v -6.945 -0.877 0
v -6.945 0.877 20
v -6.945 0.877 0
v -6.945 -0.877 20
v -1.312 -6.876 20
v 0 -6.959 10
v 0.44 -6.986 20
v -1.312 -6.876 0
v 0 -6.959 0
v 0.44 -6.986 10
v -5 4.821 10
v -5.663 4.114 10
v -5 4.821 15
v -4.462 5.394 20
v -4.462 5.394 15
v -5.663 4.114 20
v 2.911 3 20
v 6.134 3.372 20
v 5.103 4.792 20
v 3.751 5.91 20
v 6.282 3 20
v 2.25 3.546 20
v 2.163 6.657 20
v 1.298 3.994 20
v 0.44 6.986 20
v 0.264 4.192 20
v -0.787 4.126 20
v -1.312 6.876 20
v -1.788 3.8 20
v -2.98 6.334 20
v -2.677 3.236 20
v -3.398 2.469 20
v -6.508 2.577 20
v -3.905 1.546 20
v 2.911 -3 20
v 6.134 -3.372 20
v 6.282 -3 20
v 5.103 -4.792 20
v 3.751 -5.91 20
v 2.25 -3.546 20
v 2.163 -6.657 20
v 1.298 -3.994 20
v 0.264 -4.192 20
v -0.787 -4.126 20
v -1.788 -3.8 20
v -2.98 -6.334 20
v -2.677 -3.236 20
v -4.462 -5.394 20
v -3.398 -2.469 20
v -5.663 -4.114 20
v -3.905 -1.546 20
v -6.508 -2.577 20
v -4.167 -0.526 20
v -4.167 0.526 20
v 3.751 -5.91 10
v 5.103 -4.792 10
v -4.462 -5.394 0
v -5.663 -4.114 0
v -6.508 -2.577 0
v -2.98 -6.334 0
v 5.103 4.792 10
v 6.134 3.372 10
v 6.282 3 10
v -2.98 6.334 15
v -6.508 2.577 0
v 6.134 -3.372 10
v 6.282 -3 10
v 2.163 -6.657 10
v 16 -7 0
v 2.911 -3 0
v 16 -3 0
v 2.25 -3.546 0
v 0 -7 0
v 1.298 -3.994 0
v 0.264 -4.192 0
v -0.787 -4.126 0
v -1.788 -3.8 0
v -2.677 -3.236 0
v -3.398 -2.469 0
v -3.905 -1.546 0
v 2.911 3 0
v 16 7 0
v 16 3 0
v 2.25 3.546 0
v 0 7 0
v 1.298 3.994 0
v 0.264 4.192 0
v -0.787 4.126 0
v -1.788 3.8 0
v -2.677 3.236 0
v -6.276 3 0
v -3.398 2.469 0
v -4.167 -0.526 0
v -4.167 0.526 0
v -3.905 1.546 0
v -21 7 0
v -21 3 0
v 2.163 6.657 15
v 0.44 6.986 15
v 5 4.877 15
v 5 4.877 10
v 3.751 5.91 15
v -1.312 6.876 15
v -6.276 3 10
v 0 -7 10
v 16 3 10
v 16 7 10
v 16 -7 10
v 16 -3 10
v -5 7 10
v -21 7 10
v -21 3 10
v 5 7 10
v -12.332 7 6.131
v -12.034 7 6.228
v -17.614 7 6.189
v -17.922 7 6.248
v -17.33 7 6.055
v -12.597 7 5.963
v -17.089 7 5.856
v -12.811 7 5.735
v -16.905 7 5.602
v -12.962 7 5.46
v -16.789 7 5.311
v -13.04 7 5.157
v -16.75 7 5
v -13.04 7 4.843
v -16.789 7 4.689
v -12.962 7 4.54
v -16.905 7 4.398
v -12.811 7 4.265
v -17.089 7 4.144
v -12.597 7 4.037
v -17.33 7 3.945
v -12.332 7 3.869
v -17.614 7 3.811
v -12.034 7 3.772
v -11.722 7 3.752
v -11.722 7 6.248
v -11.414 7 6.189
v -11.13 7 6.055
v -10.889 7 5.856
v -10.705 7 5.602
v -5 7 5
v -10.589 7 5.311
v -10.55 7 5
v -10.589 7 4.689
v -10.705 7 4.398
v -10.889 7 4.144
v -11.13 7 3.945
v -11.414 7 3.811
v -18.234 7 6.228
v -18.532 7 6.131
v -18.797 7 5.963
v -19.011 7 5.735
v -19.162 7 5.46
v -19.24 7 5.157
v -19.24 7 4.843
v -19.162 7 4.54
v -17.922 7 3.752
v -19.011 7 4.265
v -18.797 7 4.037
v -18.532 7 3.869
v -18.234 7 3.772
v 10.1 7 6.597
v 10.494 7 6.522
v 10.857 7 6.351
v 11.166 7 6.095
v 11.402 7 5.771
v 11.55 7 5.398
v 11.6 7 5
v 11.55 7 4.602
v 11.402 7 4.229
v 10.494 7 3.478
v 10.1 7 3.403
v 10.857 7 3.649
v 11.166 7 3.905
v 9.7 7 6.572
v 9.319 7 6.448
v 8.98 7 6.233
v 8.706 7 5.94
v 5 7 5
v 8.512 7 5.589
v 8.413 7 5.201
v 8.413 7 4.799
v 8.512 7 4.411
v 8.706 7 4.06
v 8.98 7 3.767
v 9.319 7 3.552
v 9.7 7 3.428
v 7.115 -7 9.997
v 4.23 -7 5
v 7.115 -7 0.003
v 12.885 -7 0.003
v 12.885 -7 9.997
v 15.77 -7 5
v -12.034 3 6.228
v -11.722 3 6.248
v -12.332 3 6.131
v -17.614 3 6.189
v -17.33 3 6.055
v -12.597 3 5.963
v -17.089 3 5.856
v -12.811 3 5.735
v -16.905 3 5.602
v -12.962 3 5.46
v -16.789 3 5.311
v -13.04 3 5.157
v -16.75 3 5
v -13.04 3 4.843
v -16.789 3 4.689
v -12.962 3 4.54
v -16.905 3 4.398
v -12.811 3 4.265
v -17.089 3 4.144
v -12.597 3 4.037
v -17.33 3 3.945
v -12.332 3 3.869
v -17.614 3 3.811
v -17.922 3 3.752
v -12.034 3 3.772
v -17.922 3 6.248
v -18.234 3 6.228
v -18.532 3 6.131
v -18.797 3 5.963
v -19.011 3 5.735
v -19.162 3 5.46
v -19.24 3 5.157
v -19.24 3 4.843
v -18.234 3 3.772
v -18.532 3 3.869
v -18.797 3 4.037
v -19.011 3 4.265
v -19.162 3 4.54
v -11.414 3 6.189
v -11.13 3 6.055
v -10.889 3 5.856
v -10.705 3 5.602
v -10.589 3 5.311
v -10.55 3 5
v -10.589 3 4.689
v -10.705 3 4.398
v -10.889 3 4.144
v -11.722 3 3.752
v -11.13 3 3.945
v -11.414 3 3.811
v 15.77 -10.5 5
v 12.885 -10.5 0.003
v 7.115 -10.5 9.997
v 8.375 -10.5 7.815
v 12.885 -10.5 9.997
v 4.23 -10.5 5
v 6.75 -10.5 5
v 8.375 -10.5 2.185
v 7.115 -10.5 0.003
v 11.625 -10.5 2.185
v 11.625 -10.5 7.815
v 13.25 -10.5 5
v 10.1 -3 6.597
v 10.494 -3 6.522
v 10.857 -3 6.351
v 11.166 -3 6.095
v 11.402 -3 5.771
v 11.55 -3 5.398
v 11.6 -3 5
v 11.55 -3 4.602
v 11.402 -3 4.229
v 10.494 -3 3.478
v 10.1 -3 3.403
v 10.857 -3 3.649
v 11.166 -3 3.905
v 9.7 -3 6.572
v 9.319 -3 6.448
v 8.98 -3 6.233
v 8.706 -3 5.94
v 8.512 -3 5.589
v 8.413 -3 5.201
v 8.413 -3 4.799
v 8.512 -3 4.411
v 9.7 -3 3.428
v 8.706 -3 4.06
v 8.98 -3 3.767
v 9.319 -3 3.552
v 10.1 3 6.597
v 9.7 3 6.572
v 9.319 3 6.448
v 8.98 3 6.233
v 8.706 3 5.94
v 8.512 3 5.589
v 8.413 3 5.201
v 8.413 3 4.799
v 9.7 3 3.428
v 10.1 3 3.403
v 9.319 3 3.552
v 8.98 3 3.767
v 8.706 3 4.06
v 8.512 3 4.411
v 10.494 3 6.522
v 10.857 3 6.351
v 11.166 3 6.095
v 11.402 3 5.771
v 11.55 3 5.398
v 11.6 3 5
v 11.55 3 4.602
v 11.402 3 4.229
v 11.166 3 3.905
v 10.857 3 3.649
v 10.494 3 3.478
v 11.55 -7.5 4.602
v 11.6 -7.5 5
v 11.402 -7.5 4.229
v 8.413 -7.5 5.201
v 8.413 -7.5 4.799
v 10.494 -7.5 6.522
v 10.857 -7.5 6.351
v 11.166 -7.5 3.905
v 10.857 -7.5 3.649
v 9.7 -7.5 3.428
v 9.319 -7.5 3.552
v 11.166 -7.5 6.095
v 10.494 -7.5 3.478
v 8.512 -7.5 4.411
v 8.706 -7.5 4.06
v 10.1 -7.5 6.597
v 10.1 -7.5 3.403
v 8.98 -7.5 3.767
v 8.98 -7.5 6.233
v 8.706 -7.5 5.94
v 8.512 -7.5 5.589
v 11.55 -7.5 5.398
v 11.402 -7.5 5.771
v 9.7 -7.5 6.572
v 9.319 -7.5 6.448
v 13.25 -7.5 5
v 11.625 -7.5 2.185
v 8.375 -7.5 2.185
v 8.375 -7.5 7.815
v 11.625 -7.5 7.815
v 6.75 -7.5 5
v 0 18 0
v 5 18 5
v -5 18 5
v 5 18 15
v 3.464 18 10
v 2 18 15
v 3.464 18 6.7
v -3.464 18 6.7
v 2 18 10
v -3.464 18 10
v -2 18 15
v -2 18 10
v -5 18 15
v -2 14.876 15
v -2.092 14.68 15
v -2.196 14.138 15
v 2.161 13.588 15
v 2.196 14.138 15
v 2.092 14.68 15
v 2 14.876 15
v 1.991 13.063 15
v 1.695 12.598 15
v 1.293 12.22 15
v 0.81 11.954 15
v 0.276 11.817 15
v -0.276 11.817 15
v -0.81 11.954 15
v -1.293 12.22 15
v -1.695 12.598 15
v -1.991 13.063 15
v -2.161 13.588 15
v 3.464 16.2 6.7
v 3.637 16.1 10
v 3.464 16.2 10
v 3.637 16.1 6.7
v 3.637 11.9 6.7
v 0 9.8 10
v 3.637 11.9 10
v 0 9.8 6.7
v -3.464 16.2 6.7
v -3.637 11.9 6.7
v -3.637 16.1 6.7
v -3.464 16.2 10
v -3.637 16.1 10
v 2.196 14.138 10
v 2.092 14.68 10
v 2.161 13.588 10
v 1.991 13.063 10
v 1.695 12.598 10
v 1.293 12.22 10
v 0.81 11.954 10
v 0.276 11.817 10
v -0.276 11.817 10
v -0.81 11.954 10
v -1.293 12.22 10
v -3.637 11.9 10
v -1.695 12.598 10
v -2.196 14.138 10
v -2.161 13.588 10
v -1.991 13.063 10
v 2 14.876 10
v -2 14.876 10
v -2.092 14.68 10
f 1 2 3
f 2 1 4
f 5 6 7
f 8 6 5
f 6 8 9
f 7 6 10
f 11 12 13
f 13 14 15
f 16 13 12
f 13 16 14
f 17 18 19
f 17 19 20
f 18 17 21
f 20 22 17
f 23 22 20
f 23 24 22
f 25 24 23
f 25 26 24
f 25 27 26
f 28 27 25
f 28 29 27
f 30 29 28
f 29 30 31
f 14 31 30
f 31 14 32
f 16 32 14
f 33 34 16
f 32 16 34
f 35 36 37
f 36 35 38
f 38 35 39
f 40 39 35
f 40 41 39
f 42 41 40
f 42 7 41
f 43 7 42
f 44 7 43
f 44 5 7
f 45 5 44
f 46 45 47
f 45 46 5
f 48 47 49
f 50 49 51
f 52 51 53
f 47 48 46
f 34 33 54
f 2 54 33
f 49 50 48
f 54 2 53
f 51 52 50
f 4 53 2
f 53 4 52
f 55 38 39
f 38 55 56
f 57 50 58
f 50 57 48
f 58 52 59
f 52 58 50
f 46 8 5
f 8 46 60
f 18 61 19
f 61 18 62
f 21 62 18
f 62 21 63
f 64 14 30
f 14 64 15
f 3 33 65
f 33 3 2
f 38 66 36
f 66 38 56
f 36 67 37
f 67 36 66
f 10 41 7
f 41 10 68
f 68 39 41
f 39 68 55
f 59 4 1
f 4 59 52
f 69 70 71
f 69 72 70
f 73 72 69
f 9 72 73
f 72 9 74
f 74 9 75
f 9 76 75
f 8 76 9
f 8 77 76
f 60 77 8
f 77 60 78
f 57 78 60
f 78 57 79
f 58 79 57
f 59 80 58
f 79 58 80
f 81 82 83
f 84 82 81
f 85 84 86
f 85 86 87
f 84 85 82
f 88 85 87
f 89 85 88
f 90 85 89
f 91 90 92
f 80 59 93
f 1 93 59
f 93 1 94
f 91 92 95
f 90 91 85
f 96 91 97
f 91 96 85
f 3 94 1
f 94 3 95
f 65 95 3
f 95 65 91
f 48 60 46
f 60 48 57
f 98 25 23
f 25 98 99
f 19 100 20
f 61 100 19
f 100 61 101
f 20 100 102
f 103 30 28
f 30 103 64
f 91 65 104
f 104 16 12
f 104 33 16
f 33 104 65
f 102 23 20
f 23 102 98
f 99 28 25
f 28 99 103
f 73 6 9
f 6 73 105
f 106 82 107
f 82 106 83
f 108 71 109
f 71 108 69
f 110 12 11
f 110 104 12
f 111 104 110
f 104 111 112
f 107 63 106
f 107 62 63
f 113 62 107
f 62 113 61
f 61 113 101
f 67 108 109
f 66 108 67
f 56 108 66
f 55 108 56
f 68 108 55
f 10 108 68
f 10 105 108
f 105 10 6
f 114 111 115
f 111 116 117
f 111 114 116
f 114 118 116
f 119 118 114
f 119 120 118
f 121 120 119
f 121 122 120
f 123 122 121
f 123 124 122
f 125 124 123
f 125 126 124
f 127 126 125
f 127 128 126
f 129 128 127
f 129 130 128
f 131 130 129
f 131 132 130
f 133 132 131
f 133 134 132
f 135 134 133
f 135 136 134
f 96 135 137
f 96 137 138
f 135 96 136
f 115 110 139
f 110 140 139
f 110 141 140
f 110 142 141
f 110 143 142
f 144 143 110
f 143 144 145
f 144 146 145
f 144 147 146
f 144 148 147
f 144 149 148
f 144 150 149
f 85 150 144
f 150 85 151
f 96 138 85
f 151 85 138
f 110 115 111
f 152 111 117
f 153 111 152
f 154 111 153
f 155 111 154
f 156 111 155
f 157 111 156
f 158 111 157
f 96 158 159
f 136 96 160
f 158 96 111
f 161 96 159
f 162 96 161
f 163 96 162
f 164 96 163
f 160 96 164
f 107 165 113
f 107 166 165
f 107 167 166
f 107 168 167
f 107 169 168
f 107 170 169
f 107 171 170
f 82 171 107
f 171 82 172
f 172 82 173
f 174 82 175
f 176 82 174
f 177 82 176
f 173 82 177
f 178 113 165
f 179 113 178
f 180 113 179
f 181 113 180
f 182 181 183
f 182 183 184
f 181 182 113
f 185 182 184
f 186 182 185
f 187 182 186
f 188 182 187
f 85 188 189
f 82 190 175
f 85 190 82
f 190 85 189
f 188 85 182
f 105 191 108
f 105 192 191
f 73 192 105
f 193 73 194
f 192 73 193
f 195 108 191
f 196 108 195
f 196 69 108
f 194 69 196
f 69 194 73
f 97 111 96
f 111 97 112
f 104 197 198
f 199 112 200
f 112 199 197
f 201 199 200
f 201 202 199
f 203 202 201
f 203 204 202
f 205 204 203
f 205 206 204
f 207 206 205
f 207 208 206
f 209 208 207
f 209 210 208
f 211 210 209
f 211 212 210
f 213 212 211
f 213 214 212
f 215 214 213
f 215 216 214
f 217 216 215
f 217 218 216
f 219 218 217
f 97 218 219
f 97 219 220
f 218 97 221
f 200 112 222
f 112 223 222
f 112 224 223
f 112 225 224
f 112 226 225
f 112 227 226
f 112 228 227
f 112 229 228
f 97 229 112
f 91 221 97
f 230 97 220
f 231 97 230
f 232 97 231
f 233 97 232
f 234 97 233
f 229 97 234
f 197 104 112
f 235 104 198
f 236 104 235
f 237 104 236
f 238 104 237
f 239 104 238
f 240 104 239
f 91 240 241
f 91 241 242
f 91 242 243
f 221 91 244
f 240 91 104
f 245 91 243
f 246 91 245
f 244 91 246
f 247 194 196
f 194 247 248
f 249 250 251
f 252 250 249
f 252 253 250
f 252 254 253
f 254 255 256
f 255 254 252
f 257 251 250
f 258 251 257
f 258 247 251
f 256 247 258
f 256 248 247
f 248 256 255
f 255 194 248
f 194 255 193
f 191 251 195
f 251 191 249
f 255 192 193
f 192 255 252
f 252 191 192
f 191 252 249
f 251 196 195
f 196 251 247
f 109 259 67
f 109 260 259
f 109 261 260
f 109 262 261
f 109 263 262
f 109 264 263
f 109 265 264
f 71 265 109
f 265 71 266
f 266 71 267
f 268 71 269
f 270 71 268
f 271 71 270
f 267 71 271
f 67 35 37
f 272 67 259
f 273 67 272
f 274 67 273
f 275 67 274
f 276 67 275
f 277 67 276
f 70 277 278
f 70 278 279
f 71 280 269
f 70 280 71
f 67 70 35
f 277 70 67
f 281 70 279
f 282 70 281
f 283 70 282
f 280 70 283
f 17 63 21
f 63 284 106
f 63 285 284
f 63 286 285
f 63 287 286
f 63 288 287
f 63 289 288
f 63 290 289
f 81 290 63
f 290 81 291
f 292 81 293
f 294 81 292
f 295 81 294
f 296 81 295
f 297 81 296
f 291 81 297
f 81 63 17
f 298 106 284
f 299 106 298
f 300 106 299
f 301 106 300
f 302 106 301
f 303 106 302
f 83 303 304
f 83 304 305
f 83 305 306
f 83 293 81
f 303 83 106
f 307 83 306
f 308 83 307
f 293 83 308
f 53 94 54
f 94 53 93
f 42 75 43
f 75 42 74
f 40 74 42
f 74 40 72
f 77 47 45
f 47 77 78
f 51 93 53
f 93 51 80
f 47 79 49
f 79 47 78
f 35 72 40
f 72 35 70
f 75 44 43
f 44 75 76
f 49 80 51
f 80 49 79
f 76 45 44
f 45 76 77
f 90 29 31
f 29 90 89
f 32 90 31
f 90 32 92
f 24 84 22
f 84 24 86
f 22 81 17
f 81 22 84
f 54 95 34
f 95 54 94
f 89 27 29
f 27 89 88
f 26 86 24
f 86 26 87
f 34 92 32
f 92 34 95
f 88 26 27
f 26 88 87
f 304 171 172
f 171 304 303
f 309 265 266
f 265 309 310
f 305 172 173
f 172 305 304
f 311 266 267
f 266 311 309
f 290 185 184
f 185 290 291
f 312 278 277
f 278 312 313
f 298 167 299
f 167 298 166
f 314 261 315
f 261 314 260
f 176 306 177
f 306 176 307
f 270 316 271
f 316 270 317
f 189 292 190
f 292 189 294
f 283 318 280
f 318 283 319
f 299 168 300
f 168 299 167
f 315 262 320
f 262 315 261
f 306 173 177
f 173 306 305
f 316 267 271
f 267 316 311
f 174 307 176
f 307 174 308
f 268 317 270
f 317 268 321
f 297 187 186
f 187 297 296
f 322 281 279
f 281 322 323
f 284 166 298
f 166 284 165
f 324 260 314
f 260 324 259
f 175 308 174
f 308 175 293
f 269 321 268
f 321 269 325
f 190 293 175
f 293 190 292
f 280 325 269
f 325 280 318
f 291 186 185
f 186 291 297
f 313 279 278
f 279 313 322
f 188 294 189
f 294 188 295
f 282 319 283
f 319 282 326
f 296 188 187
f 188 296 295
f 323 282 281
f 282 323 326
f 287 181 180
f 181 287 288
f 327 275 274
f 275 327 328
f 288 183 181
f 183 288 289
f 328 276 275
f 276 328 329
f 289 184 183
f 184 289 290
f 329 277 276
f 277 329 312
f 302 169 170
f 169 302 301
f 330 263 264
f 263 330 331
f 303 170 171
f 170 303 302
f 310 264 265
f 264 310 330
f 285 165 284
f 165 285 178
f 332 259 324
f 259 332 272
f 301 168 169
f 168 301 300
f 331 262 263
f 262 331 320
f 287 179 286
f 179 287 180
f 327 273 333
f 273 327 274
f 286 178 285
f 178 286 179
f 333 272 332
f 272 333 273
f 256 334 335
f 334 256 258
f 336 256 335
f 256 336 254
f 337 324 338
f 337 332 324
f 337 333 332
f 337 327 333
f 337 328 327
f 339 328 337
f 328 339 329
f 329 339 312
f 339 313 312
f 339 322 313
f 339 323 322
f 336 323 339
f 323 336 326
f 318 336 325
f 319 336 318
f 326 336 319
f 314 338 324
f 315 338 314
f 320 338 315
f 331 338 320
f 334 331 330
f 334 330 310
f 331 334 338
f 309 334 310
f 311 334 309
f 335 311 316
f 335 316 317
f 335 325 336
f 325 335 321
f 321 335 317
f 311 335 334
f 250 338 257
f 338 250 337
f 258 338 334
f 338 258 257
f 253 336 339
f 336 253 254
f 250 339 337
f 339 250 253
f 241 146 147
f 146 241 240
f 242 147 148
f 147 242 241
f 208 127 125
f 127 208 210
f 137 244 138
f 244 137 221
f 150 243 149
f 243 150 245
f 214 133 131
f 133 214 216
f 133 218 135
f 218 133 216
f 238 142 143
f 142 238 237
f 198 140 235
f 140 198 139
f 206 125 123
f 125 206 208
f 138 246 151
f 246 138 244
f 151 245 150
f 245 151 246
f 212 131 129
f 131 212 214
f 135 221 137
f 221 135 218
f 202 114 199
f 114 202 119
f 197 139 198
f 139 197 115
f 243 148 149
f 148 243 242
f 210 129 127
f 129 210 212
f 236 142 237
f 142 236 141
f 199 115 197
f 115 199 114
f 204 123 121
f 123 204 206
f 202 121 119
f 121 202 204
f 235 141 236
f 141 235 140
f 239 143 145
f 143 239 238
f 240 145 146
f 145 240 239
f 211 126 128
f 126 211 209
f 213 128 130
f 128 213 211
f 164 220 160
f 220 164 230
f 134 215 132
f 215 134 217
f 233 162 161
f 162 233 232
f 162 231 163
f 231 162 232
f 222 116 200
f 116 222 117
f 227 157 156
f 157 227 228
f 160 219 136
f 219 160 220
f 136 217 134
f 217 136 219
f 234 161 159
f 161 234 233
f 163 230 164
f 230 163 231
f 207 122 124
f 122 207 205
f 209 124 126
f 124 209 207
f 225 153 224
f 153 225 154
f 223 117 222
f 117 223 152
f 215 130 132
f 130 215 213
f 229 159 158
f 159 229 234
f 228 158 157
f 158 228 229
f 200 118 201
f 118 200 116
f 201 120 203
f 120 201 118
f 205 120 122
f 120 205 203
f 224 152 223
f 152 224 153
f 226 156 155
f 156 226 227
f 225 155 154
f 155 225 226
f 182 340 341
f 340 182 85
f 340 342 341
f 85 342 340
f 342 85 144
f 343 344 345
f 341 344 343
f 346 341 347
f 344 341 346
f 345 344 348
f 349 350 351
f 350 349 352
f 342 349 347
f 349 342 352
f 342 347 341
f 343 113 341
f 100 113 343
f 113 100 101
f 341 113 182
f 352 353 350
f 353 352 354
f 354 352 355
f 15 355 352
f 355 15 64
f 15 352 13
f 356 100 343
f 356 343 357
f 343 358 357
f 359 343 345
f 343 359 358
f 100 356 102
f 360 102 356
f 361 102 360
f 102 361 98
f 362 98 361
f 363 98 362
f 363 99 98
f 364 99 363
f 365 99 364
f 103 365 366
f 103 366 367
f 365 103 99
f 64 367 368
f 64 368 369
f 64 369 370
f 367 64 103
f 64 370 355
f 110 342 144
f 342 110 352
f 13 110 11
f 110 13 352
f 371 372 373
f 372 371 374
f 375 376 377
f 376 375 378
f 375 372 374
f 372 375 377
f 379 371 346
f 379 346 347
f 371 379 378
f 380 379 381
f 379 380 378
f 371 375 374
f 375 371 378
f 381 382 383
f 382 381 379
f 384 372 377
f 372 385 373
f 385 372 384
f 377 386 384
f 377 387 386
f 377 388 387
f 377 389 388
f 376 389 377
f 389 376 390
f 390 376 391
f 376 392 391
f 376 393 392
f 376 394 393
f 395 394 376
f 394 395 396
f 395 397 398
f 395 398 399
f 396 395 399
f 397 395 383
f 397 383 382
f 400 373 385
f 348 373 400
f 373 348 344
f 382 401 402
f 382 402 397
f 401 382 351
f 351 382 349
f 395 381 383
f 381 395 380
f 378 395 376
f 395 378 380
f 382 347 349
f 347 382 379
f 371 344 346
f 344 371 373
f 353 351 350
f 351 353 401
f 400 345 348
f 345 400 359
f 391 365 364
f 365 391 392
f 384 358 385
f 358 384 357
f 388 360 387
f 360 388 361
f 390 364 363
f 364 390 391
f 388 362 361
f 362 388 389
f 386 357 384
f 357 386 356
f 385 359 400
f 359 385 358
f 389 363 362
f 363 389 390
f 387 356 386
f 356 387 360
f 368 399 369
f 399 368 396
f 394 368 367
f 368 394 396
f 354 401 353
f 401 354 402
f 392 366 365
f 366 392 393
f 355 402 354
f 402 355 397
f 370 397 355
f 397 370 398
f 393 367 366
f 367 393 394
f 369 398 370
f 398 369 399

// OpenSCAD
// file: lib/halfcube.scad
// библиотечная функция - прямоугольная призма
/*
 * a - вектор [x,y,z] - куб, в который вписана призма
 * orient - строка "x"/"y"/"z" - ориентация треугольной грани призмы
 * center - логическое true/false - позиционирование относительно центра или с угла
 *
 * Автор - Andrew Answer (Андрей Нуждов): http://answe.ru
 * Сделано для проекта SibRap: http://reprap.org/wiki/SibRap
 * GitHub: https://github.com/andrewanswer/sibrap
 */
module halfcube(a, orient, center) {
	translate(center==true?-a/2:0) {
		if (orient=="x")
			polyhedron (points = [[a[0],0,a[2]], [0,0,a[2]], [0,a[1],0], [0,0,0], [a[0],0,0], [a[0],a[1],0]], faces = [[1,3,2], [4,0,5], [3,1,4], [1,2,5], [1,0,4], [0,1,5],  [5,2,4], [4,2,3]]);
		if (orient=="y")
			polyhedron (points = [[0,a[1],a[2]], [0,0,a[2]], [0,a[1],0], [0,0,0], [a[0],0,0], [a[0],a[1],0]], faces = [[1,3,2], [1,2,0], [3,1,4], [0,2,5], [1,5,4], [1,0,5],  [5,2,4], [4,2,3]]);
		if (orient=="z")
			polyhedron (points = [[0,a[1],a[2]], [0,0,a[2]], [0,a[1],0], [0,0,0], [a[0],0,0], [a[0],0,a[2]]], faces = [[1,3,2], [1,2,0], [3,1,4], [0,2,5], [1,5,4], [1,0,5],  [5,2,4], [4,2,3]]);
	}
}

// test
/*
halfcube([10,20,30],"x",true);
halfcube([10,20,30],"y",true);
halfcube([10,20,30],"z",false);
*/
// main file
include <lib/halfcube.scad>

// качество цилиндров
$fn=25;
// наружный диаметр направляющей
d1=8;
// допуск на радиус направляющей
// (расстояние между стенками направляющей и детали)
delta1=0.2;
// диаметр М3
d2=3.2;
// диаметр гайки М3
d3=6.1;
// внешний диаметр концевика
d4=d1/2+3;
// вырез концевика
h1=d1-2;

// диаметр гайки М4
d5=8;
// ширина гайки М4
d6=d5*cos(30);
// высота гайки М4
h2=3.1+delta1;


module main(){
difference(){
	union(){
		translate([d4,d4,-10]) cylinder(20,r=d4);
		translate([d4,0,0]) cube([16,d4*2,10]);
		translate([-14,0,0]) cube([37,4,10]);
		translate([17,17.5,5]) rotate([90,0,0]) cylinder(5,r=5.77,$fn=6);
	}
	translate([9,d4-h1/2,-10.1]) cube([18,h1,21]);
	translate([d4, d4,-10.1]) cylinder(21, r=d1/2+delta1);

	//Securing hole
	translate([17,17,5]) rotate([90,0,0]) cylinder(20,r=d2/2);
	translate([17,19.5,5]) rotate([90,0,0]) cylinder(5,r=d3/2+0.2,$fn=6);

	translate([-4.8,17,5]) rotate([90,0,0]) cylinder(20,r=2.5/2);
	translate([-11,17,5]) rotate([90,0,0]) cylinder(20,r=2.5/2);
}

rotate([0,0,-90])
translate([d4,d4,0]){
    translate([-9.8,0,5]) {
        halfcube([8+5.8,5,5],"x");
        rotate([90,0,0]) halfcube([8+5.8,5,5],"x");
    }
    difference() {
        translate([-2.9,0,0])cube([8+5.8,10,10],true);
        cylinder(r=d5/2+delta1,h=h2,$fn=6);
        translate([d4,0,h2/2])
            cube([d4*2,d6,h2],true);
        translate([d4,0,-10+delta1])
            cube([d4*2,4,20],true);
        translate([0,0,-20+delta1])cylinder(r=4/2+delta1,h=20);
    }
}
}
/* ДЕТАЛЬ */
//main();
/* ПЕЧАТЬ */
rotate([180,0,0]) translate([-d4,-d4,-10]) main();
